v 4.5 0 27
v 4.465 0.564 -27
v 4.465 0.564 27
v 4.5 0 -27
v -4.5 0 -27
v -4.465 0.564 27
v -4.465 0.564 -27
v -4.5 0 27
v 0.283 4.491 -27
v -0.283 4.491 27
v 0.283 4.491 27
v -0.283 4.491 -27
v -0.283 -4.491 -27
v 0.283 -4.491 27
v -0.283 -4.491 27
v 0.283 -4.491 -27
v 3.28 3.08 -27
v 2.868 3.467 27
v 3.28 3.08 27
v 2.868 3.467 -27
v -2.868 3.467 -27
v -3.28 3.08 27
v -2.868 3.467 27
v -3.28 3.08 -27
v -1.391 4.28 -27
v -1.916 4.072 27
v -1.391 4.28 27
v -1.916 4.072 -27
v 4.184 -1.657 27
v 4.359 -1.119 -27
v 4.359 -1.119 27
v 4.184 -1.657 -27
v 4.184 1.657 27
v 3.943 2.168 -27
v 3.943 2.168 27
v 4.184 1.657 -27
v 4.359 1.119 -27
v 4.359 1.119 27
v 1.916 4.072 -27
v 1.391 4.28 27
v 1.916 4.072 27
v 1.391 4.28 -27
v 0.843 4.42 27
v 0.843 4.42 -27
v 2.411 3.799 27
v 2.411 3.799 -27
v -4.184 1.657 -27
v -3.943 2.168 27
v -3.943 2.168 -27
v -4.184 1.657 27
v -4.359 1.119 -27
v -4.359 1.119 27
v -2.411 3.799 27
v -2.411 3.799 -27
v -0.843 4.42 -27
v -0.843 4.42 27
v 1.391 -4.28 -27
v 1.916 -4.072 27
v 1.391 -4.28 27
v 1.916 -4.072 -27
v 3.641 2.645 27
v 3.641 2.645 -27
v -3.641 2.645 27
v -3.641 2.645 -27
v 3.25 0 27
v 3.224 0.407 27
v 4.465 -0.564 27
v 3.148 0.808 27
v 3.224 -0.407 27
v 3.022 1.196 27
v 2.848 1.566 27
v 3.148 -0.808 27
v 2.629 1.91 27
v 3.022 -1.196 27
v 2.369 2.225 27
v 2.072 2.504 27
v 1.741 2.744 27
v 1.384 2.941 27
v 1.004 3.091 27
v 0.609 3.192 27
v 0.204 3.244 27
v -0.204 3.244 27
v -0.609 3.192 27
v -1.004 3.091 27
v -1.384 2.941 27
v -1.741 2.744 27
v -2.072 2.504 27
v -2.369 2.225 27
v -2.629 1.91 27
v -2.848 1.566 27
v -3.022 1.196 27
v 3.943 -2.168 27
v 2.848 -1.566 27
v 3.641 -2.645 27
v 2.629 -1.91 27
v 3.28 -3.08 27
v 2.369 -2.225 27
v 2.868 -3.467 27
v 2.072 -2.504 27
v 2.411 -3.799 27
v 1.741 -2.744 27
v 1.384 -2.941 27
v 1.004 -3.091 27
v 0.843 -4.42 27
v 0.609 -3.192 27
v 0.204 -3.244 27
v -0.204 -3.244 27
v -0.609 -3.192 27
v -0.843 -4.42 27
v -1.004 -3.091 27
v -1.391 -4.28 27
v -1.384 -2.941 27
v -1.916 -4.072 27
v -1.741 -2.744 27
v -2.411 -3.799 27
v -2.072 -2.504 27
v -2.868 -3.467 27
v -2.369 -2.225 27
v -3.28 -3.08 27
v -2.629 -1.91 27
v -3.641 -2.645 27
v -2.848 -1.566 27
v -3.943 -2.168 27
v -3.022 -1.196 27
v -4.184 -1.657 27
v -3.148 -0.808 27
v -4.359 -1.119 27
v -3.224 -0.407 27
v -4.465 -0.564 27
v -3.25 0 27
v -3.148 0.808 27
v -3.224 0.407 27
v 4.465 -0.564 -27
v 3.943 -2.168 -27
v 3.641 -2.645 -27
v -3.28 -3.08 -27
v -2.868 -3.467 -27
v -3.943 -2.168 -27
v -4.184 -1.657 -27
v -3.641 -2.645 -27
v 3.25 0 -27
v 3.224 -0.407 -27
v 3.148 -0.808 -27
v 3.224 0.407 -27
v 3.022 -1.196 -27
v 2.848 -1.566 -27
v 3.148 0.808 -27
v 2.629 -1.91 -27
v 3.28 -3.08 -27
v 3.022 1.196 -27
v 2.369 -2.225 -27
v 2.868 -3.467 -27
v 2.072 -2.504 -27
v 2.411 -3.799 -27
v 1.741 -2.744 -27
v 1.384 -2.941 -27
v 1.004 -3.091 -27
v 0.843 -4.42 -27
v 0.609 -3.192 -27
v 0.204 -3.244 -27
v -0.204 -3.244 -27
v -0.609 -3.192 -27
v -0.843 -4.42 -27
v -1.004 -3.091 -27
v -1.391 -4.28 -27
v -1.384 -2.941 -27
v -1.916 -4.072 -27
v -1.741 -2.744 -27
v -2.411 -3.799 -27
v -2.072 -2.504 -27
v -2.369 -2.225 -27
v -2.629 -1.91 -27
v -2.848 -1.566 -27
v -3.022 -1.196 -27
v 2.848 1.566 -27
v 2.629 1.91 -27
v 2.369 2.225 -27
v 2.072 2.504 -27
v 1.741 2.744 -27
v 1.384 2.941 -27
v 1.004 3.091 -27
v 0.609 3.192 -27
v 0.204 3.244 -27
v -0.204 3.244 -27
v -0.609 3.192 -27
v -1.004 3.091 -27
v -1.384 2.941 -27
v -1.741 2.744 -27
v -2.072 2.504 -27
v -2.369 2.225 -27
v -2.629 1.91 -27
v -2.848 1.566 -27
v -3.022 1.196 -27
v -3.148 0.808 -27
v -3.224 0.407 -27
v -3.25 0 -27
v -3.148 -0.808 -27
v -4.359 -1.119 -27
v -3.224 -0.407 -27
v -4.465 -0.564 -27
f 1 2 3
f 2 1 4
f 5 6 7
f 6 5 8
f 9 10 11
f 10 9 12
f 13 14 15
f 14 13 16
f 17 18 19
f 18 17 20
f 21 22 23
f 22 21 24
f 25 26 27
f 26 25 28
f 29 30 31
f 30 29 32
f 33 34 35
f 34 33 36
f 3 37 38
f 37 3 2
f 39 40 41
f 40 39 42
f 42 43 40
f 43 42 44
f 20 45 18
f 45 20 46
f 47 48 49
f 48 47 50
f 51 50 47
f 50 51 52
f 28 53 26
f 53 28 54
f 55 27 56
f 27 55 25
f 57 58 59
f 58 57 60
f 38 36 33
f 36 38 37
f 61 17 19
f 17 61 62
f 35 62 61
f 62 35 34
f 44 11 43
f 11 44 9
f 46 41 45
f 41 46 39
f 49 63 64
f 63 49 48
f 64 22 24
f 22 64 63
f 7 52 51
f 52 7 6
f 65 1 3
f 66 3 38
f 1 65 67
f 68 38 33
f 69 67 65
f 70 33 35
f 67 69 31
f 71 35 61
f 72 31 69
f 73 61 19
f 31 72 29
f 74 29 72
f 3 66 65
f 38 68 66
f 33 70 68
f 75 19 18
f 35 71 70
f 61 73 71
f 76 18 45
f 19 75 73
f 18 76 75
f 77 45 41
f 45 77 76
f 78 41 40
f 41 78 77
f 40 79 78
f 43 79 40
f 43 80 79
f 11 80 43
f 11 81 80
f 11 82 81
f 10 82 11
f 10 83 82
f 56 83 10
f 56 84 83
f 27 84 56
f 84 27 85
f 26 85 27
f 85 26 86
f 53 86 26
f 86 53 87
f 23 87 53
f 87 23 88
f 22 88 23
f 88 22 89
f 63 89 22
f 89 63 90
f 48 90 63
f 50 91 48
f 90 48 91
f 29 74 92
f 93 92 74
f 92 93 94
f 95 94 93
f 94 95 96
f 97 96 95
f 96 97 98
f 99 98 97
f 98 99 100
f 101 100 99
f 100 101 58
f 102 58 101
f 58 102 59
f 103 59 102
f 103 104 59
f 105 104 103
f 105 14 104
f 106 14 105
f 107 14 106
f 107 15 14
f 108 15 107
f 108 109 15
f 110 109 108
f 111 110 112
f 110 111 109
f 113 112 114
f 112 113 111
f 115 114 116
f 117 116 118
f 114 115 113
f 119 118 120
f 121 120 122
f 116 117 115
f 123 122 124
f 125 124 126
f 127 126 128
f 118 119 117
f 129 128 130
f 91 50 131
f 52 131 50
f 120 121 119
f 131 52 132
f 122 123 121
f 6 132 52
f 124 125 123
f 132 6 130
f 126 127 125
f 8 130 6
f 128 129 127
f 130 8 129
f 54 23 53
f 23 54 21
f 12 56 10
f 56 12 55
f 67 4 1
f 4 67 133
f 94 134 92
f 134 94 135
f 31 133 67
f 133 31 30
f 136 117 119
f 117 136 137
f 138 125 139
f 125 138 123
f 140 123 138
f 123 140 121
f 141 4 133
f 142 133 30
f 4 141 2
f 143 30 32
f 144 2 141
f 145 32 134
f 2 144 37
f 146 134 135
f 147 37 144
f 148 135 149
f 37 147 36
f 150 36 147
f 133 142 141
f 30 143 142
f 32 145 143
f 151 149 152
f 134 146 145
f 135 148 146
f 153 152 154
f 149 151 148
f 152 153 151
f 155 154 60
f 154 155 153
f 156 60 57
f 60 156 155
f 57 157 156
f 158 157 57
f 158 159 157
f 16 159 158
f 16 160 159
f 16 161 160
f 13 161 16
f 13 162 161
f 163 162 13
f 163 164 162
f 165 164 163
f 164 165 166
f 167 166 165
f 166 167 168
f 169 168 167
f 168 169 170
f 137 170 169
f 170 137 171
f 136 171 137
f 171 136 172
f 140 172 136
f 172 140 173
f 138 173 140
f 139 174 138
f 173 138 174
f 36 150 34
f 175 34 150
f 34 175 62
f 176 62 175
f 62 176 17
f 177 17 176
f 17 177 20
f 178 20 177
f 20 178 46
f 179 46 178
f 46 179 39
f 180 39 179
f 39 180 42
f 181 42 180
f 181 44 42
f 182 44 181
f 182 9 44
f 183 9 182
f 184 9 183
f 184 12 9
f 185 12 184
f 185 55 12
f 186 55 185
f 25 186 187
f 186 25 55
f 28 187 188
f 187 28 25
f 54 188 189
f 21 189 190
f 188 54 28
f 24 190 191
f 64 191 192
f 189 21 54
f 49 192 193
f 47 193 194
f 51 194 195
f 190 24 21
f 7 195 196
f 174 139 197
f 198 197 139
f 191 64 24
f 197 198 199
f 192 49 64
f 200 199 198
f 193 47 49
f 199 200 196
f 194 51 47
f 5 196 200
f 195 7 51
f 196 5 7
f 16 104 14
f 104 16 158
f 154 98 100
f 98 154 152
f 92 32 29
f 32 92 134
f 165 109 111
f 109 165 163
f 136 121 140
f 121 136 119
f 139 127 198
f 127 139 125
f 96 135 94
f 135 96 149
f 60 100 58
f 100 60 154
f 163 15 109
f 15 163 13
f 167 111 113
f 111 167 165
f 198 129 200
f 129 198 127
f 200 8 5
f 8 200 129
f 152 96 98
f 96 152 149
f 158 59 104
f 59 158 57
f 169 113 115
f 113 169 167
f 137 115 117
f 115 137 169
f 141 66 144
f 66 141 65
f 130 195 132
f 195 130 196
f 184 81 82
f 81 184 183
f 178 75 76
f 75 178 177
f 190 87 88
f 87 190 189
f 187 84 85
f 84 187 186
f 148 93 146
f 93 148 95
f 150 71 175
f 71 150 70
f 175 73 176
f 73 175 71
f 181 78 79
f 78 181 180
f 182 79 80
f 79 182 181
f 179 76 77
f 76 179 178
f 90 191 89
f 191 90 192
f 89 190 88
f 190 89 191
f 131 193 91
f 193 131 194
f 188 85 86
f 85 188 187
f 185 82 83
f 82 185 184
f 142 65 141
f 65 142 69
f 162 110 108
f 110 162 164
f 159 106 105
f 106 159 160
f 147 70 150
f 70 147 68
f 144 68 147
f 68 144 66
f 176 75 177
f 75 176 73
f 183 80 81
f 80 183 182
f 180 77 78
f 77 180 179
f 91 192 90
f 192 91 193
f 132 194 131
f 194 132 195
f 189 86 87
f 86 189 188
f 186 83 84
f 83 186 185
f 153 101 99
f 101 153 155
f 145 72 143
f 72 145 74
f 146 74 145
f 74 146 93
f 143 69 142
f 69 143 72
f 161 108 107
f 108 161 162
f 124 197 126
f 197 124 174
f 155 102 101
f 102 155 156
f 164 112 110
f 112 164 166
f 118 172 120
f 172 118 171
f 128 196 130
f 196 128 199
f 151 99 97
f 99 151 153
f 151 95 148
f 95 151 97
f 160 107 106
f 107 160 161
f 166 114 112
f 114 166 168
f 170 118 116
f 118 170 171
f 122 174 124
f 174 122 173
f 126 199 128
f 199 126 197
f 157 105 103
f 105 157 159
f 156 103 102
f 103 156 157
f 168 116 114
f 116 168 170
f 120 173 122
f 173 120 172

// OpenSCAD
$fn = 50;


difference() {
	union() {
		translate(v = [0, 0, -27.0000000000]) {
			cylinder(h = 54, r = 4.5000000000);
		}
	}
	union() {
		translate(v = [0, 0, -100.0000000000]) {
			cylinder(h = 200, r = 3.2500000000);
		}
	}
}
